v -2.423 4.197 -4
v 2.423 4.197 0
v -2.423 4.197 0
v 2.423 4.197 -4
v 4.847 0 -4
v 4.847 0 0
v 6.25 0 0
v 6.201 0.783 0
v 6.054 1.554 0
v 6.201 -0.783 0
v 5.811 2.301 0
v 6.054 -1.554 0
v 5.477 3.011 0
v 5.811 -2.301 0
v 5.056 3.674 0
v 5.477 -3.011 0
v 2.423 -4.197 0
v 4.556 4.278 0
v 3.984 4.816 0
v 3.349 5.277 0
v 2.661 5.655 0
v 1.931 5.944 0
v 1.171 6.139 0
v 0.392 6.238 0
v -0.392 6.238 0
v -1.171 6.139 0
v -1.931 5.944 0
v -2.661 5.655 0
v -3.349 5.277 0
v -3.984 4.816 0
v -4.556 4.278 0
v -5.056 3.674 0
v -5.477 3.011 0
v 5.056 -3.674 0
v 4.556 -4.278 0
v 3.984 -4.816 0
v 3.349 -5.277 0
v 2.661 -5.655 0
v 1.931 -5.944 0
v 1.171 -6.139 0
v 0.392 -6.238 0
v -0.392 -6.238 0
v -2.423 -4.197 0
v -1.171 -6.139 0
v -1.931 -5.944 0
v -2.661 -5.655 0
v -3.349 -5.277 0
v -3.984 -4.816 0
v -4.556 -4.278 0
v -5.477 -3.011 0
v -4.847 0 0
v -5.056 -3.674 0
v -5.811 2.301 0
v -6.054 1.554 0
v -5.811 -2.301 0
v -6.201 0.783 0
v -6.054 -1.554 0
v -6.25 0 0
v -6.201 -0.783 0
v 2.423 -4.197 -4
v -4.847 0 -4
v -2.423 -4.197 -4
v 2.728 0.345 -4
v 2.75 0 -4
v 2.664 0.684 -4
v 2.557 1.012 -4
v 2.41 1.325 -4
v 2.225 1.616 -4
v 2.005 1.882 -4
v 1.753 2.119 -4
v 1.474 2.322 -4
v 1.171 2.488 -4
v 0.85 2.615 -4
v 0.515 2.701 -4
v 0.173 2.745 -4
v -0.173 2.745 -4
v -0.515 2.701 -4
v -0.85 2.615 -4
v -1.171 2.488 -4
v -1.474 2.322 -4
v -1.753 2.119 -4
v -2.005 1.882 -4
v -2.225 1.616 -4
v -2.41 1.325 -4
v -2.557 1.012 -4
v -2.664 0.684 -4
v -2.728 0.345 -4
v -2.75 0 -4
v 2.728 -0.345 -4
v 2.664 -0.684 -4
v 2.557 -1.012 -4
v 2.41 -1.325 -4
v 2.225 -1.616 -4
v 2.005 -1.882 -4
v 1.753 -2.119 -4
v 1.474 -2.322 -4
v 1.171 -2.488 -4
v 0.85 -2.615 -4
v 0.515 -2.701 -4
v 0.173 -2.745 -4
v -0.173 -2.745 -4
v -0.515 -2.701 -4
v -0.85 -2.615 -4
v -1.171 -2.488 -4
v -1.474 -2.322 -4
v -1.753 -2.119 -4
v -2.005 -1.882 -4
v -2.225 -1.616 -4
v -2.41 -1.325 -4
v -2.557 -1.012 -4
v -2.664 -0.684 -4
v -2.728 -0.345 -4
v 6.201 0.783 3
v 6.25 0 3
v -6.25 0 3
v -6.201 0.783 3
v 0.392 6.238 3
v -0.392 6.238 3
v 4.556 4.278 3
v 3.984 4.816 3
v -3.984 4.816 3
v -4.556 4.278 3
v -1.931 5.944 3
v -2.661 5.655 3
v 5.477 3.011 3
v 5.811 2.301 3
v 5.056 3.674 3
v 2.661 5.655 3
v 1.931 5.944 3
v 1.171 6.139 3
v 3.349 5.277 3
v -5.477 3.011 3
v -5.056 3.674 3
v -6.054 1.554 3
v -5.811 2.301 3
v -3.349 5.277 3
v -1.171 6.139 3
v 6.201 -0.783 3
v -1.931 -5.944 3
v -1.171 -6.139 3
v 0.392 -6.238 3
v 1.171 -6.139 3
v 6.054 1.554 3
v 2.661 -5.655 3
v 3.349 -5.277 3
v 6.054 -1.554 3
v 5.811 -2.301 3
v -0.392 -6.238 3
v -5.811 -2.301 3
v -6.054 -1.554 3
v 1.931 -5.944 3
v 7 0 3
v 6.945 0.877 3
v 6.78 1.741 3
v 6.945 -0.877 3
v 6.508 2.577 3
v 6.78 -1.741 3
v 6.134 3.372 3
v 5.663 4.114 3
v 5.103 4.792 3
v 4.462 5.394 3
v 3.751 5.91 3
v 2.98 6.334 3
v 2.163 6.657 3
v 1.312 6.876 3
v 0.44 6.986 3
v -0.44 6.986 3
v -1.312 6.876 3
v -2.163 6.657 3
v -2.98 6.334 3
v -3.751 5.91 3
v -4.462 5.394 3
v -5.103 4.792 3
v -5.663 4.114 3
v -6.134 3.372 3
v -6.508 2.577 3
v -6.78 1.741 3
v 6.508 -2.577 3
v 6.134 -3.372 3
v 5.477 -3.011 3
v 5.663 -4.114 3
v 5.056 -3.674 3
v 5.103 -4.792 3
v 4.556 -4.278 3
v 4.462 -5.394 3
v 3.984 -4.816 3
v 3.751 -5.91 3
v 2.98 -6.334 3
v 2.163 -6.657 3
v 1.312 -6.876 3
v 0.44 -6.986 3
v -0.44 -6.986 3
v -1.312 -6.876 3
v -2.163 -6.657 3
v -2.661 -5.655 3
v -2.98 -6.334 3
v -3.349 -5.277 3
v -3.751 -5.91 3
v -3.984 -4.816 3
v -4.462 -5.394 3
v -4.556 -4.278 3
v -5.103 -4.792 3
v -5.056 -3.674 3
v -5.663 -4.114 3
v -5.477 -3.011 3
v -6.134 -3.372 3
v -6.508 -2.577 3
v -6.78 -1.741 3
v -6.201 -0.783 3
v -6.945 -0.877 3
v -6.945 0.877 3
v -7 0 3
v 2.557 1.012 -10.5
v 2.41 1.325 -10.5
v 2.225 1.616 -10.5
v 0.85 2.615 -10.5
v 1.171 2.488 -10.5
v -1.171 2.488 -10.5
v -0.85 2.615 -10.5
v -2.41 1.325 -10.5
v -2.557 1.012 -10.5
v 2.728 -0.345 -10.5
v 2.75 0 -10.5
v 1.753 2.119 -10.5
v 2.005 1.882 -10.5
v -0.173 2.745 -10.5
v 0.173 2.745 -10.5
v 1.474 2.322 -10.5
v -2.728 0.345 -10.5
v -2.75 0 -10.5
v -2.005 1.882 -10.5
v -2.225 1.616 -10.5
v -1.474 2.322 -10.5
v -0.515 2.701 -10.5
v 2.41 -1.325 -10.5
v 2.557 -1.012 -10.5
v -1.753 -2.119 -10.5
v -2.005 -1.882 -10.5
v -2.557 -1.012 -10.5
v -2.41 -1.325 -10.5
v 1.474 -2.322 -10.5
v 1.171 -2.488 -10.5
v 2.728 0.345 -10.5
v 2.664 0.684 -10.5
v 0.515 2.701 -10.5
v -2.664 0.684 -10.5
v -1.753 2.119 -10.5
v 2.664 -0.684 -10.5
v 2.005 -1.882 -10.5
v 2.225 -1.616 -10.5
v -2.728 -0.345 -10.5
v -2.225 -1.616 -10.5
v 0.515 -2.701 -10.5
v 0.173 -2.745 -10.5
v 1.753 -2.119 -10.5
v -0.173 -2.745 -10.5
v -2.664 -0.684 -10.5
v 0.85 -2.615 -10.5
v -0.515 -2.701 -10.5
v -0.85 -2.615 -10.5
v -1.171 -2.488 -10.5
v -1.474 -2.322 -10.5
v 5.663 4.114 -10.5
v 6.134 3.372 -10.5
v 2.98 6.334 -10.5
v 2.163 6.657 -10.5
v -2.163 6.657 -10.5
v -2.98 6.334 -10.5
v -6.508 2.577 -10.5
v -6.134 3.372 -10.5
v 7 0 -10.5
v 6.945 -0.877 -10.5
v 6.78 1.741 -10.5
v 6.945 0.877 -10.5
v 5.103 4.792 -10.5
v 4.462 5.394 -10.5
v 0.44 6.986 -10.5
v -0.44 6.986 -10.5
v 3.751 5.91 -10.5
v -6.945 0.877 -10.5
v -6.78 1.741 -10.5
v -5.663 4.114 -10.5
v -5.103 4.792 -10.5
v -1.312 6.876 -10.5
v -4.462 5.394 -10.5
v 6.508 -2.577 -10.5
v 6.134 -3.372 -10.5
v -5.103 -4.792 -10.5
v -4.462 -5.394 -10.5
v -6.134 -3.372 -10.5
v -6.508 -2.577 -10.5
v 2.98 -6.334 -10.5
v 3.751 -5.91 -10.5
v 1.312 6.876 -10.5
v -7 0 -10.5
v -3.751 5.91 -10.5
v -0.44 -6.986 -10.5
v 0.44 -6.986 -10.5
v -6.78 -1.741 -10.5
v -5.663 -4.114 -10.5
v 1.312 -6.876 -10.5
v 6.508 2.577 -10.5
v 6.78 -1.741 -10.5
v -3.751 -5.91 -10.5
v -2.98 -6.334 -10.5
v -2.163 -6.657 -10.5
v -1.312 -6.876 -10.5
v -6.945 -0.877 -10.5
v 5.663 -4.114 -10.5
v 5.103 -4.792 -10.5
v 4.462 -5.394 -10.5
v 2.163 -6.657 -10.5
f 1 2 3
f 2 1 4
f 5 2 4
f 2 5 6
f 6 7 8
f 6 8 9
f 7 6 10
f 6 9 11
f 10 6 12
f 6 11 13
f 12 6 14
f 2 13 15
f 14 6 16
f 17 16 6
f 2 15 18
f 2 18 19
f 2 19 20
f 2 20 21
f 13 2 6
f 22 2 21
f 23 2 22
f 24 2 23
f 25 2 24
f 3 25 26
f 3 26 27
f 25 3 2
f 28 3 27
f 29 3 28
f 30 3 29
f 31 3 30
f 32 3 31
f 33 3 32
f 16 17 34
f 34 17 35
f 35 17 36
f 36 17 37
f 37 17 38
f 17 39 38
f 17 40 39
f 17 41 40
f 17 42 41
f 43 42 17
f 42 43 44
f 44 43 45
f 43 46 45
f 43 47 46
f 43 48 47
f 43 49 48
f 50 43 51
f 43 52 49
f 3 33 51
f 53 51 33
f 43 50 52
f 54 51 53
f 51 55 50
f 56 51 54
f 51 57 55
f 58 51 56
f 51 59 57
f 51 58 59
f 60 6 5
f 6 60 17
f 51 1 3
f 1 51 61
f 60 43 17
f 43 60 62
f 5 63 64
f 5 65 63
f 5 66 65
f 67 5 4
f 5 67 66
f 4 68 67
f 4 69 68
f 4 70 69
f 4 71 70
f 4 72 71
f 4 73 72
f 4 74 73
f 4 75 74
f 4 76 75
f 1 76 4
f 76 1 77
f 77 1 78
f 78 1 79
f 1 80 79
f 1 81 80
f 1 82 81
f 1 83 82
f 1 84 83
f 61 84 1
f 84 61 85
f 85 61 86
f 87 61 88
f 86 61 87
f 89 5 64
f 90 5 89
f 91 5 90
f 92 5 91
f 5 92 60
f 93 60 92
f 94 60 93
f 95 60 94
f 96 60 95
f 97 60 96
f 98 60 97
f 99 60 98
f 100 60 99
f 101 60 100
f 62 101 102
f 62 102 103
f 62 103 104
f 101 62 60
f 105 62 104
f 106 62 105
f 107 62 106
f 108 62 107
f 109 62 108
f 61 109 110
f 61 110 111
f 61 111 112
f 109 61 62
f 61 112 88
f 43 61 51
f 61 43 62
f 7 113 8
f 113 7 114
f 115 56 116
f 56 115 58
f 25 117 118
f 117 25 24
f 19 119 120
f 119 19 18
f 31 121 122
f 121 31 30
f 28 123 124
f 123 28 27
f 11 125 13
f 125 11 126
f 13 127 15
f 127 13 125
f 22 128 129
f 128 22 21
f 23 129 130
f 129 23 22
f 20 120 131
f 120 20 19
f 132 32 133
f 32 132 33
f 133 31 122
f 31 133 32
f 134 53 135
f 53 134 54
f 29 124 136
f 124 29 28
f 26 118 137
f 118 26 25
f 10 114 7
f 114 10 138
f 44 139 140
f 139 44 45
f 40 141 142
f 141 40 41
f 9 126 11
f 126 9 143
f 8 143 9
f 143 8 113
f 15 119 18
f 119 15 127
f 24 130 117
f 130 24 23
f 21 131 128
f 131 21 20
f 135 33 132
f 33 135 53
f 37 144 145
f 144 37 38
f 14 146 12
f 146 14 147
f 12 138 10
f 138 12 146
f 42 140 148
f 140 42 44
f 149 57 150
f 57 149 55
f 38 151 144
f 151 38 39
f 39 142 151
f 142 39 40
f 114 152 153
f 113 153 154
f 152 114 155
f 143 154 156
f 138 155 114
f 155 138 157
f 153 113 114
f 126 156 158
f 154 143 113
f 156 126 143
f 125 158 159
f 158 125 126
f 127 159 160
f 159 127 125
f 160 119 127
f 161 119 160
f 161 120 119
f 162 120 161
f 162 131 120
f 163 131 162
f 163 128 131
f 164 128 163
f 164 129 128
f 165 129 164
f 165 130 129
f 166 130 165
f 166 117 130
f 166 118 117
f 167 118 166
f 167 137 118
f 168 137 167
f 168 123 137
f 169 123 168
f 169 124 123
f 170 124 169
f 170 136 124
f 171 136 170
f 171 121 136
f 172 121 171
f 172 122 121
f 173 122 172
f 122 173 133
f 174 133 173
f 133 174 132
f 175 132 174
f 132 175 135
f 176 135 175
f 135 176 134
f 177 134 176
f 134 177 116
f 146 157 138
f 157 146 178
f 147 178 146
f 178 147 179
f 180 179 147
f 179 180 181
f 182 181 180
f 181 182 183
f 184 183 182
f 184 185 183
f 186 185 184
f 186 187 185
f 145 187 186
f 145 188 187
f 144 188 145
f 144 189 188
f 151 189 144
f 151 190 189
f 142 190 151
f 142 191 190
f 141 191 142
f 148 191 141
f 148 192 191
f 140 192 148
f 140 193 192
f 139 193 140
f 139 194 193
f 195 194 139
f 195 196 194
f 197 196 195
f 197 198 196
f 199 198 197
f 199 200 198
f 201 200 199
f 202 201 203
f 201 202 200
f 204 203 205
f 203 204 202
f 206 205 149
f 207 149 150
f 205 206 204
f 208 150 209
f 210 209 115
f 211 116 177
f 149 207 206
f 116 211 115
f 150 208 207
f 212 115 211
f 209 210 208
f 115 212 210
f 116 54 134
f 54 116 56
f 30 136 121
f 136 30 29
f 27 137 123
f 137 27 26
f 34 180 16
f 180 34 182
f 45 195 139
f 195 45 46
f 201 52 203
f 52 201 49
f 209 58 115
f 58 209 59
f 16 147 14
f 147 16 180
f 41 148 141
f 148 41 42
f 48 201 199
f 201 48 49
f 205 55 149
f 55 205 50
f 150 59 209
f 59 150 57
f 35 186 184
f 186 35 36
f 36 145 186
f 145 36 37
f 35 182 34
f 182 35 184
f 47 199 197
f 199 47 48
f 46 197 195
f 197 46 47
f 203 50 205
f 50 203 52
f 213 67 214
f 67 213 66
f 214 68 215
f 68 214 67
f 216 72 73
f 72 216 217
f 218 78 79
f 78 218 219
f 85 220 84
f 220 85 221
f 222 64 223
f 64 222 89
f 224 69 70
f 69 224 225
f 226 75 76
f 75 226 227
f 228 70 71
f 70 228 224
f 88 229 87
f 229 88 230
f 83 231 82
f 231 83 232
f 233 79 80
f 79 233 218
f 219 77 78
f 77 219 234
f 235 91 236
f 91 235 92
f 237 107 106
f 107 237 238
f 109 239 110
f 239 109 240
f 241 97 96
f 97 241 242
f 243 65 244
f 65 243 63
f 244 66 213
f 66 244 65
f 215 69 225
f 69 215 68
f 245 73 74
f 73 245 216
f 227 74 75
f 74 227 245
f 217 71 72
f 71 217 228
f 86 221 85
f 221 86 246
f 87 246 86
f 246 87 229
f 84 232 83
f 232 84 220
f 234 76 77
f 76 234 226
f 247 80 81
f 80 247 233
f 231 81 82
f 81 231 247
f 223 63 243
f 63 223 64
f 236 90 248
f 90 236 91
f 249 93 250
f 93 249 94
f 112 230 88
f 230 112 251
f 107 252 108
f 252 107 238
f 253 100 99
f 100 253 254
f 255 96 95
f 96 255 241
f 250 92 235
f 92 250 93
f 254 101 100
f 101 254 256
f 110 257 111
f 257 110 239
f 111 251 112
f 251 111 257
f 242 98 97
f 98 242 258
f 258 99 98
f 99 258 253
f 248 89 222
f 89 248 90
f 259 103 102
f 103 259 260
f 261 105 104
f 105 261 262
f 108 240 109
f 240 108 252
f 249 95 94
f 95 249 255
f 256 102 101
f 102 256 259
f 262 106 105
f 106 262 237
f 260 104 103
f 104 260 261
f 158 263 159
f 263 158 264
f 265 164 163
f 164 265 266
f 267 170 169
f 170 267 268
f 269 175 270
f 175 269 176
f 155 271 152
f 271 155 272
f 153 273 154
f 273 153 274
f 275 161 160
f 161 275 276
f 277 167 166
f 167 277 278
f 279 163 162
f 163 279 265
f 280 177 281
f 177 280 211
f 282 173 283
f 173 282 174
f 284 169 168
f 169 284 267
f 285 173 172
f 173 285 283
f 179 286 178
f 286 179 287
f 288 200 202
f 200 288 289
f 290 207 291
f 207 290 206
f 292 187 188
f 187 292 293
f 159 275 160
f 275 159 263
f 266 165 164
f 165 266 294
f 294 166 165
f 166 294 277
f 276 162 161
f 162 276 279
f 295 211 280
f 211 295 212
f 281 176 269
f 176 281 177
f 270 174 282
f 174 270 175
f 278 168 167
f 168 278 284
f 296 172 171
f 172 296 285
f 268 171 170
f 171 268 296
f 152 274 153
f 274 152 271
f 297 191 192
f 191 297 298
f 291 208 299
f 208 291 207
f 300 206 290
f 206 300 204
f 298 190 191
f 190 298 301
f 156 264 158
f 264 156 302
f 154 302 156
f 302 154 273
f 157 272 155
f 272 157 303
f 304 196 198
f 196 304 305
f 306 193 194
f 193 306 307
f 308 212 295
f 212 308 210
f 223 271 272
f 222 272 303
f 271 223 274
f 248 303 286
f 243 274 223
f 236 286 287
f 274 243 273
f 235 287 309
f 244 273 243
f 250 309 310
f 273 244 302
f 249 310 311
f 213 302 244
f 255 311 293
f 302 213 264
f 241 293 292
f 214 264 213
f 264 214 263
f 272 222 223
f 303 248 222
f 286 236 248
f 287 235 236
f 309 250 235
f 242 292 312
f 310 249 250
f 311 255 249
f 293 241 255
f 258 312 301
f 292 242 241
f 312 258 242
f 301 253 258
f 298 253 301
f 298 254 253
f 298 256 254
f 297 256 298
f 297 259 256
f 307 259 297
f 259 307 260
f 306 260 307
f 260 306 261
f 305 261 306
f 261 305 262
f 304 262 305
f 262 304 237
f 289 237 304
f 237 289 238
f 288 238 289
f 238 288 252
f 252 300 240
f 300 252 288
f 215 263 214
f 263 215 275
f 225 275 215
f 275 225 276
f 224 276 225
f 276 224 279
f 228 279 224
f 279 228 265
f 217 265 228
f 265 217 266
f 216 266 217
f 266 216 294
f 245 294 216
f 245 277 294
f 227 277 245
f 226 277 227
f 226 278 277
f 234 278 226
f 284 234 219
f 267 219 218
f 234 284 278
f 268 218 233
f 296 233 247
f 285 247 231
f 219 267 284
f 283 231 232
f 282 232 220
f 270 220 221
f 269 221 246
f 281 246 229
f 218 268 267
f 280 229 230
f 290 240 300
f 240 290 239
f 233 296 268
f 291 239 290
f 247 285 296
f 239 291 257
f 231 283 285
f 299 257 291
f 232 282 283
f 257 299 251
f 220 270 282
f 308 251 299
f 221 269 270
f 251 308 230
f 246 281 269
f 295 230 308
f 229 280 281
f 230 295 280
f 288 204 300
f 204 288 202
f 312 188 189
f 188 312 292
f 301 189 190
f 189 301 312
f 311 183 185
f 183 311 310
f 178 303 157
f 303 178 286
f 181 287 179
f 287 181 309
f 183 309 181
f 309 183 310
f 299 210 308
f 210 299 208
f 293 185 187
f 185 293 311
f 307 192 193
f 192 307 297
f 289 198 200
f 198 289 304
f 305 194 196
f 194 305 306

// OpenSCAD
$fn = 50;


difference() {
	union() {
		translate(v = [0, 0, -10.5000000000]) {
			cylinder(h = 13.5000000000, r = 7.0000000000);
		}
	}
	union() {
		translate(v = [0, 0, 0]) {
			rotate(a = [0, 0, 0]) {
				difference() {
					union() {
						translate(v = [0, 0, -4]) {
							linear_extrude(height = 4) {
								polygon(points = [[4.8468000000, 0.0000000000], [2.4234000000, 4.1974519271], [-2.4234000000, 4.1974519271], [-4.8468000000, 0.0000000000], [-2.4234000000, -4.1974519271], [2.4234000000, -4.1974519271]]);
							}
						}
					}
					union();
				}
			}
		}
		#cylinder(h = 3, r = 6.2500000000);
		#translate(v = [0, 0, -100.0000000000]) {
			cylinder(h = 200, r = 2.7500000000);
		}
	}
}
